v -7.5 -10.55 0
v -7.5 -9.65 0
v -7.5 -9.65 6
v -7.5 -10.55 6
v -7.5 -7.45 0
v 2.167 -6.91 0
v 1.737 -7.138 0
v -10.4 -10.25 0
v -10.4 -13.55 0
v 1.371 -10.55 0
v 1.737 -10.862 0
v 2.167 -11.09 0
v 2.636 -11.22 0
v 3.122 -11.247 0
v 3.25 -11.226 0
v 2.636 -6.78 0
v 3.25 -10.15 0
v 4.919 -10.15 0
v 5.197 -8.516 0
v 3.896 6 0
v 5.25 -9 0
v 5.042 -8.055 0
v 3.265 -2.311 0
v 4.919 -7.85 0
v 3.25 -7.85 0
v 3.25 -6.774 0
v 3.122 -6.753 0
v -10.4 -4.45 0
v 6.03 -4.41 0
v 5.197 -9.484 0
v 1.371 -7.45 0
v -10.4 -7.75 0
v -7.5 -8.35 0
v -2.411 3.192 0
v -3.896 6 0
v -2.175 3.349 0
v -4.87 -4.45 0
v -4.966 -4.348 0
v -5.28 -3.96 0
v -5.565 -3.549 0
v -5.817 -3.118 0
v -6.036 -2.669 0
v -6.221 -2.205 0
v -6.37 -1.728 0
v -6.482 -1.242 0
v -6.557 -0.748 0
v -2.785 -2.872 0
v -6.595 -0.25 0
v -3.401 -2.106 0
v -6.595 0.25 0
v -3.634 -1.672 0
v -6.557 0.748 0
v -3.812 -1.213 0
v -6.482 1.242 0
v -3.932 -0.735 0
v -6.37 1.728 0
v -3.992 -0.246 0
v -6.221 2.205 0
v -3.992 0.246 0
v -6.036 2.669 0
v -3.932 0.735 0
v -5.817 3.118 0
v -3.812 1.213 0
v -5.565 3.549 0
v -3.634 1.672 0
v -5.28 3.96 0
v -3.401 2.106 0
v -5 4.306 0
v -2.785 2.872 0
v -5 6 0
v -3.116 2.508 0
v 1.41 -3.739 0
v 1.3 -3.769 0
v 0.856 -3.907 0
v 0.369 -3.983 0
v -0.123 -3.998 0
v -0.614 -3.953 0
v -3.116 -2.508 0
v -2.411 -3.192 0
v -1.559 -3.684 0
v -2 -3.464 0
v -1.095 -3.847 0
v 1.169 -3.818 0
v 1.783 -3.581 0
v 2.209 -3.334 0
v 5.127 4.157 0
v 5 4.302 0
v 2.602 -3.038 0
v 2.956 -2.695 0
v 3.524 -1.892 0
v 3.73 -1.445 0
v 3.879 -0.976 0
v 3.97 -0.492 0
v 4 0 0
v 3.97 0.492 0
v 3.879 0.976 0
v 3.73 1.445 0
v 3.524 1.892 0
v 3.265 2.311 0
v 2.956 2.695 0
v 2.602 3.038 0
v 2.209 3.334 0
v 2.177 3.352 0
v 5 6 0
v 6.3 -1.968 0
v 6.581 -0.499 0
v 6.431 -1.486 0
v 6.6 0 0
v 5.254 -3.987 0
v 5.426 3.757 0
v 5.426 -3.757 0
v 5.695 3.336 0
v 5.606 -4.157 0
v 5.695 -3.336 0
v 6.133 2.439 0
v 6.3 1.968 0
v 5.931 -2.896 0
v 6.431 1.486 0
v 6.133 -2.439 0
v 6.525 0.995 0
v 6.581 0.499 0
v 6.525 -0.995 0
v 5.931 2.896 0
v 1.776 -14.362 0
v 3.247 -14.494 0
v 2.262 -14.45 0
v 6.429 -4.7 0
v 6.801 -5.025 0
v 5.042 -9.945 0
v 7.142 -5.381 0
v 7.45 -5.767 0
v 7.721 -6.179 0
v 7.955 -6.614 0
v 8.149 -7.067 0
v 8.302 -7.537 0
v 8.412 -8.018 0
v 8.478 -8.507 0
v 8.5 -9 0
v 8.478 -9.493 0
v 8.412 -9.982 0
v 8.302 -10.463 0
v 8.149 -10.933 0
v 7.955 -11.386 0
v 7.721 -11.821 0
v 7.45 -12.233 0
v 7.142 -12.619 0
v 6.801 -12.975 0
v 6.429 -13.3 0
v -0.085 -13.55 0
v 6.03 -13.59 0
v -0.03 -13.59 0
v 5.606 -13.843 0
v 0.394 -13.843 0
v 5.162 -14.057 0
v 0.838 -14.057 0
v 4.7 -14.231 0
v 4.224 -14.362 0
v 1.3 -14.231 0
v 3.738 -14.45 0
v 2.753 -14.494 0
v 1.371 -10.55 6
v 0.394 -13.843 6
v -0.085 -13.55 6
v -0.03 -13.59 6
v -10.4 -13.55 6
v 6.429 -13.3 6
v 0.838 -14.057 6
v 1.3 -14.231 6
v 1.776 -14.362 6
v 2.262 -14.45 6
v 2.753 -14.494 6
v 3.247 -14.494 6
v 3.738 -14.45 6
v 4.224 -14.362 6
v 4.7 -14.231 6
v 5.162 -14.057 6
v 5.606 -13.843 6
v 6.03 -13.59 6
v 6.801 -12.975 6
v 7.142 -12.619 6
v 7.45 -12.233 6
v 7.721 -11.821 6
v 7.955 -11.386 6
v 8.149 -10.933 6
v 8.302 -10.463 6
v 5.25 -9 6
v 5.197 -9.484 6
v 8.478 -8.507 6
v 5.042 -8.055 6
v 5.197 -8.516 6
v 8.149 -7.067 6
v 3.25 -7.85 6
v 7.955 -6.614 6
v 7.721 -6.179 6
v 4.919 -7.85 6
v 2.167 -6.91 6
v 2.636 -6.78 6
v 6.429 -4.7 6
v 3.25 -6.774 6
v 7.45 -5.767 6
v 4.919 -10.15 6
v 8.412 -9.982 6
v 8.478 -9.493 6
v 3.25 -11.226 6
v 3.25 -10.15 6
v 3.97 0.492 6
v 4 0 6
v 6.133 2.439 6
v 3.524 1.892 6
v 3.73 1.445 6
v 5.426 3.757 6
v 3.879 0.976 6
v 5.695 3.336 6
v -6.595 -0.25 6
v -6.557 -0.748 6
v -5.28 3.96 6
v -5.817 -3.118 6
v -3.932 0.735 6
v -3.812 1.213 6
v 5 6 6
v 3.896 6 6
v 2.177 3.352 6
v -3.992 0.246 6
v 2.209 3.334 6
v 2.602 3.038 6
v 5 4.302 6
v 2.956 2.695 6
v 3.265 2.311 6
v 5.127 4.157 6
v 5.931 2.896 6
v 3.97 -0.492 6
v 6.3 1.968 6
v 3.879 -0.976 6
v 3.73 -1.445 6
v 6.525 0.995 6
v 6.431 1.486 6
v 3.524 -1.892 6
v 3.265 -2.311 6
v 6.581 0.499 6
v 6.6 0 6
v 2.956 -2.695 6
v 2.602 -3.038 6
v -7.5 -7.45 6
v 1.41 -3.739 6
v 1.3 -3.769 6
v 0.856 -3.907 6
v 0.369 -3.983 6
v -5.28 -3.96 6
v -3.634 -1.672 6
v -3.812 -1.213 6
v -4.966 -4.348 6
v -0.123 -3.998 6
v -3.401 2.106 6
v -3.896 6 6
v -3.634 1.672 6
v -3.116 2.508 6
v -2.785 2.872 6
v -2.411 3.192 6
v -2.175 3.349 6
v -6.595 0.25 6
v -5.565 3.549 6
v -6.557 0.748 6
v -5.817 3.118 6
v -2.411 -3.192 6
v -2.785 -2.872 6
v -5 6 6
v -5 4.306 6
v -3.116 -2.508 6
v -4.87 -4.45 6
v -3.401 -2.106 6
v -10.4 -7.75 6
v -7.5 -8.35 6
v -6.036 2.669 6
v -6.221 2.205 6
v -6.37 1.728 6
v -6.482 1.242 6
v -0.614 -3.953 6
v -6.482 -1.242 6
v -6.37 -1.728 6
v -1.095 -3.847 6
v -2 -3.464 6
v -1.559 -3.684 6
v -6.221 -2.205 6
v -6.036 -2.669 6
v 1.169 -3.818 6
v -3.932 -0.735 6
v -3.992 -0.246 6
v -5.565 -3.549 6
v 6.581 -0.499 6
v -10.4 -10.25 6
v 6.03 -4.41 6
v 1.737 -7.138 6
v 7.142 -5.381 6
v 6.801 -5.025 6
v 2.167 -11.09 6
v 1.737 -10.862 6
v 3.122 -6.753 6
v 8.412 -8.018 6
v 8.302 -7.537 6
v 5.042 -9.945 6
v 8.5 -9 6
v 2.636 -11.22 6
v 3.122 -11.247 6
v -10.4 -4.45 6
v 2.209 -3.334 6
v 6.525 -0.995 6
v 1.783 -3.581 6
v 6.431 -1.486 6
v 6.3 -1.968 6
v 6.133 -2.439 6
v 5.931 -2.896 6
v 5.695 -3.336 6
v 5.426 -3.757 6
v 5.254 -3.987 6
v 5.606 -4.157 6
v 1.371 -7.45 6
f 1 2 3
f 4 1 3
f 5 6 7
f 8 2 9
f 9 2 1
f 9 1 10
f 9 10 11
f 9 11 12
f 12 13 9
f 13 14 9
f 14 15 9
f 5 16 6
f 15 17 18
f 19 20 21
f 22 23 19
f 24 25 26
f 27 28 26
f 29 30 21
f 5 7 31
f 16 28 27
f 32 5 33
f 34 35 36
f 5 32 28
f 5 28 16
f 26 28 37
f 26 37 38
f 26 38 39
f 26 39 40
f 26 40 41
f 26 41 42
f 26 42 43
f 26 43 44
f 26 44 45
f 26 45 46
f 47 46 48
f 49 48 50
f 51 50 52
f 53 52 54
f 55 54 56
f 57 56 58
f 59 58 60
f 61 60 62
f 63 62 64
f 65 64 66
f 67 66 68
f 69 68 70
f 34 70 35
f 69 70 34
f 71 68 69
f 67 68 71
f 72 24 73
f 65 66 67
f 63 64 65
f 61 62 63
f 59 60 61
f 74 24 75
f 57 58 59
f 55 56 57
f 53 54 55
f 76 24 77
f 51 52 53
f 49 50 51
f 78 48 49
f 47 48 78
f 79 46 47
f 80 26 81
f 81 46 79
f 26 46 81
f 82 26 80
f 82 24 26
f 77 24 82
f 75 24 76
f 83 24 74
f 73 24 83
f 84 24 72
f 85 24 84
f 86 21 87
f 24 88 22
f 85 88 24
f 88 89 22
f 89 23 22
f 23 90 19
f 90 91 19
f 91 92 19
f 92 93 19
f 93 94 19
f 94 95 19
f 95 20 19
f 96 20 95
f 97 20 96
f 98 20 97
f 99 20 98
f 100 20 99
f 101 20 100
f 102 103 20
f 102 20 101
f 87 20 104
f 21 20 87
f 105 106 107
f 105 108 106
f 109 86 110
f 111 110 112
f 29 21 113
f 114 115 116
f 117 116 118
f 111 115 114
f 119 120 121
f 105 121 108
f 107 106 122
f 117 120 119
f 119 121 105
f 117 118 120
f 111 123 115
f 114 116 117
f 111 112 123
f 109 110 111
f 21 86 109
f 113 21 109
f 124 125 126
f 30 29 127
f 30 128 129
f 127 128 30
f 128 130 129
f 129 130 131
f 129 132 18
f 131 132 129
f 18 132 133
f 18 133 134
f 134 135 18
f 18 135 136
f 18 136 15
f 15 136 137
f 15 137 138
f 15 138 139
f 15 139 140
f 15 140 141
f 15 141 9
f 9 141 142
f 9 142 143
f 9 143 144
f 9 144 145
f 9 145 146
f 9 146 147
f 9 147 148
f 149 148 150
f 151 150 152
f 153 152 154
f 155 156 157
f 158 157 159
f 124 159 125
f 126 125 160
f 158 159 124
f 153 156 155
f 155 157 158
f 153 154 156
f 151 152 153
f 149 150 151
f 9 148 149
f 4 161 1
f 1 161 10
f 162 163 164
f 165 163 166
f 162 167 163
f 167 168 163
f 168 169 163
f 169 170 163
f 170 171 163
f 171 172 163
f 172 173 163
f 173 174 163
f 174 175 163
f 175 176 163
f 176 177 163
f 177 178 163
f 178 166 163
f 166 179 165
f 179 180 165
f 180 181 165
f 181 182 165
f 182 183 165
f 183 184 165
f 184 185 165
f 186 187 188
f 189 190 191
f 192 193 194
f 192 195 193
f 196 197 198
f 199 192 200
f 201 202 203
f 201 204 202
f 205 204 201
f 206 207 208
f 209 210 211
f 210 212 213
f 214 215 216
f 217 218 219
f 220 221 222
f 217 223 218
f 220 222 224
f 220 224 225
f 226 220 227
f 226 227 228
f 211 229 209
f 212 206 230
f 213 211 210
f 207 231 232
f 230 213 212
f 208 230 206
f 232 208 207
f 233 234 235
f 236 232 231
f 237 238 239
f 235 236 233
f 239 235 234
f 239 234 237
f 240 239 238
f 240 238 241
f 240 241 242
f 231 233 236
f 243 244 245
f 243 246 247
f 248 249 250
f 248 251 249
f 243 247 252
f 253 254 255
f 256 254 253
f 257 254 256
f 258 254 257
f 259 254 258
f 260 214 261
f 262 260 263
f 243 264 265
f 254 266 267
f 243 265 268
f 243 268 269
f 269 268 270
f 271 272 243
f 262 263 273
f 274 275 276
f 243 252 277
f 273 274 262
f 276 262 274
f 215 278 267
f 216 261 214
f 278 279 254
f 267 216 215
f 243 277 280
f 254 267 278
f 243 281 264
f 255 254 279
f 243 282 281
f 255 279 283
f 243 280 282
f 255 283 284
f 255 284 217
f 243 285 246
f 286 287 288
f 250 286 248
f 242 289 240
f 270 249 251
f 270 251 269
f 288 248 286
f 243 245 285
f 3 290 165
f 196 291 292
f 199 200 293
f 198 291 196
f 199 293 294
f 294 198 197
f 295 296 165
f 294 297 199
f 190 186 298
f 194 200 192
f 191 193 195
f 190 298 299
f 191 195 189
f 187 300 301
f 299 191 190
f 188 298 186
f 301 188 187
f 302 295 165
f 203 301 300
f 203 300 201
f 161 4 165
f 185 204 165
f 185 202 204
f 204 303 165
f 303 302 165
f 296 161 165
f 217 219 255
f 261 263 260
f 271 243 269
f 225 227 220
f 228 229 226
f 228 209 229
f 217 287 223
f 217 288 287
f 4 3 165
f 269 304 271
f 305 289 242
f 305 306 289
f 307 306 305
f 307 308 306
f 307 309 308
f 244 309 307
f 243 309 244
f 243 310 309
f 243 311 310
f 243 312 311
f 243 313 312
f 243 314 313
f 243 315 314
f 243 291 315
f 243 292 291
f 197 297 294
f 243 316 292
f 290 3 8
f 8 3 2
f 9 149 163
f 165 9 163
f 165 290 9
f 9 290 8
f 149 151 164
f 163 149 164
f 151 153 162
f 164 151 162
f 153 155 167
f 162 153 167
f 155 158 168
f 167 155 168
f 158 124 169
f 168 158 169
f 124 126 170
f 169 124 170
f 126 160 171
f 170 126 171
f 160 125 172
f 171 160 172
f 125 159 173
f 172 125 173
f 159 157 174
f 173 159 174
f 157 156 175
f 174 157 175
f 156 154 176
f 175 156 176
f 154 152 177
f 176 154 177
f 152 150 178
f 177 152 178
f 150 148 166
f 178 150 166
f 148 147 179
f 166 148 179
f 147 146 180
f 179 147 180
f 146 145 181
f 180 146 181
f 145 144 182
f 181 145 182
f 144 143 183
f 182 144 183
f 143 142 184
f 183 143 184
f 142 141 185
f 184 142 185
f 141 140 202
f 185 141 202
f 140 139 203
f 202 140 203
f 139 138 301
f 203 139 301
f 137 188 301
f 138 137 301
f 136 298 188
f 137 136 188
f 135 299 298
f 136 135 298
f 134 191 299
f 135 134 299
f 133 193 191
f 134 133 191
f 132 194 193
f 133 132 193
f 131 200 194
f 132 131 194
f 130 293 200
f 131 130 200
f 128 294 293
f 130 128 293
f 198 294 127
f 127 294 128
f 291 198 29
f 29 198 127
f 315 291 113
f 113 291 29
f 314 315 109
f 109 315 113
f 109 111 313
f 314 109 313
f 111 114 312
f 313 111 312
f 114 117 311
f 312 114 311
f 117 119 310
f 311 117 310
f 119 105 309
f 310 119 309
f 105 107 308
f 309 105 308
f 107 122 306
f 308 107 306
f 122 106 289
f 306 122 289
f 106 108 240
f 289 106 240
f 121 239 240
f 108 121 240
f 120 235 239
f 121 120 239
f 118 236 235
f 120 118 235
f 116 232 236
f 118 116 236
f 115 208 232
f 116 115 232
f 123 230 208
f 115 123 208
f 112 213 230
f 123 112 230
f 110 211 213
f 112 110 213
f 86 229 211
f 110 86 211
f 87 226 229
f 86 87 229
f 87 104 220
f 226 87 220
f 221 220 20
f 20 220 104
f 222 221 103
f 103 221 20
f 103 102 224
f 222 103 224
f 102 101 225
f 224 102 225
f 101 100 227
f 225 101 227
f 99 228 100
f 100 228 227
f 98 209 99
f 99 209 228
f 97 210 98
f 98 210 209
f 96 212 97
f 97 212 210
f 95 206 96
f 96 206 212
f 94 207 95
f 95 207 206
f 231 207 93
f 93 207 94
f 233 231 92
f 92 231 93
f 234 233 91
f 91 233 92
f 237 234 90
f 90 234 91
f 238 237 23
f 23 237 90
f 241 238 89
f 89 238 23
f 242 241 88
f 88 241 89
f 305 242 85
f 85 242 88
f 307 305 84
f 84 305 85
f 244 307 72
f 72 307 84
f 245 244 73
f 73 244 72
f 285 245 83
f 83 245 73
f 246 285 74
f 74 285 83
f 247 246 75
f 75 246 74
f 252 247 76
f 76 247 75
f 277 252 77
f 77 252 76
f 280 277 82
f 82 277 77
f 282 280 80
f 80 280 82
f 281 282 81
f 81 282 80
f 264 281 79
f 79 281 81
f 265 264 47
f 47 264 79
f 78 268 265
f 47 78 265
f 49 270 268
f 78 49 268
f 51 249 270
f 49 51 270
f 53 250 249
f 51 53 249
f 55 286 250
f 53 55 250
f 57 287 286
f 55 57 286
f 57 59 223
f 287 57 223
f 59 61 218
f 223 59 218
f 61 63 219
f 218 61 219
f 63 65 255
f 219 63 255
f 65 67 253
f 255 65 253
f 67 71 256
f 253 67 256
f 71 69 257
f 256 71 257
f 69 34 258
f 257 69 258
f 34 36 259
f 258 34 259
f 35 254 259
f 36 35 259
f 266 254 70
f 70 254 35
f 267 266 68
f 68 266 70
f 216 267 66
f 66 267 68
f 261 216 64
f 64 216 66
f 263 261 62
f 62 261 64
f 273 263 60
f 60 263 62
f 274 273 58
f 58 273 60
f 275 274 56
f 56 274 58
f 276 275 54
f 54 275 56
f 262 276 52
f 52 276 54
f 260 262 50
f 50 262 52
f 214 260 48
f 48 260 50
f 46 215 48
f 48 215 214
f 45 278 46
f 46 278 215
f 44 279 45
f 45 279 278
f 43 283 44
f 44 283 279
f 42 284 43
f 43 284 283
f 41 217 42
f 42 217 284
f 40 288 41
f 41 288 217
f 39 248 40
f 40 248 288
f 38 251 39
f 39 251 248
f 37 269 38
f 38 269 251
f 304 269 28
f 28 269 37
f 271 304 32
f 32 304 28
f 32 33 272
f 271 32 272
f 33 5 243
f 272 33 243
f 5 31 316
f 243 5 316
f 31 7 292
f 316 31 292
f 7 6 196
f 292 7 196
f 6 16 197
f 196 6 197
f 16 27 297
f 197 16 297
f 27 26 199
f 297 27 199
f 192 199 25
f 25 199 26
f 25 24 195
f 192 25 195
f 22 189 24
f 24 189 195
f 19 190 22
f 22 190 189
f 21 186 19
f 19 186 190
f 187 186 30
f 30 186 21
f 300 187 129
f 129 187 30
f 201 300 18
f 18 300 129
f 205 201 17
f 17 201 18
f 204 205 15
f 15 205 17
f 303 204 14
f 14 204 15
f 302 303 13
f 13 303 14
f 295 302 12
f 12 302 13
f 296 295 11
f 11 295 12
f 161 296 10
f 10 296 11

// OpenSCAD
$fs = .5;
$fa = 0.05;

clip_z = 6;

round_clip_radius_outer = 6.6;
round_clip_radius_inner = 4;

round_clip_opening_angle = 66;
round_clip_pins_x = 10;
round_clip_pins_y = 2;

long_clip_offset_x = 3;
long_clip_offset_y = 2.4 + round_clip_radius_outer;

long_clip_radius_outer = 5.5;
long_clip_radius_inner = 2.25;

long_clip_pins_x = 11.5;
long_clip_pins_y = 3;
long_clip_pins_gap = 3.1;

module pie_slice(r=3.0, a=30) {
	intersection() {
		circle(r=r);
		square(r);
		rotate(a-90) square(r);
	}
}

linear_extrude(clip_z) {
	difference() {
		union() {
			difference() {
				union() {
					circle(r=round_clip_radius_outer);
					translate([0, round_clip_pins_x/2, 0]) square([round_clip_pins_x,round_clip_pins_y], true);
				}

				circle(r=round_clip_radius_inner);
				rotate([0, 0, (90-(round_clip_opening_angle/2))]) pie_slice(r=round_clip_radius_outer + round_clip_pins_y, a=round_clip_opening_angle);
			};

			translate([long_clip_offset_x, -long_clip_offset_y, 0]) {
				difference() {
					union() {
						difference() {
							circle(r=long_clip_radius_outer);
							translate([-long_clip_radius_outer/2, 0, 0]) square([long_clip_radius_outer, long_clip_pins_gap], true);
						}
				
						translate([-11/2, 0, 0] ) {
							translate([0, -4.55+(long_clip_pins_y/2), 0]) square([long_clip_pins_x,long_clip_pins_y], true);
							translate([0, 4.55-(long_clip_pins_y/2), 0]) square([long_clip_pins_x,long_clip_pins_y], true);
							translate([-5, -4.55, 0]) rotate([0, 0, 90]) polygon(points=[ [0, 0], [3.9, 0], [3.3, 2.9], [0, 2.9] ]);
							mirror([0, 1, 0]) translate([-5, -4.55, 0]) rotate([0, 0, 90]) polygon(points=[ [0, 0], [3.9, 0], [3.3, 2.9], [0, 2.9] ]);
						}

					}

					circle(r=long_clip_radius_inner);

				}

				translate([1.5, 1.25+(2.3/2), 0]) square([2.5, 2.5], true);
				translate([1.5, -(1.25+(2.3/2)), 0]) square([2.5, 2.5], true);
			}
		}

		circle(r=3.75);
	}

}
